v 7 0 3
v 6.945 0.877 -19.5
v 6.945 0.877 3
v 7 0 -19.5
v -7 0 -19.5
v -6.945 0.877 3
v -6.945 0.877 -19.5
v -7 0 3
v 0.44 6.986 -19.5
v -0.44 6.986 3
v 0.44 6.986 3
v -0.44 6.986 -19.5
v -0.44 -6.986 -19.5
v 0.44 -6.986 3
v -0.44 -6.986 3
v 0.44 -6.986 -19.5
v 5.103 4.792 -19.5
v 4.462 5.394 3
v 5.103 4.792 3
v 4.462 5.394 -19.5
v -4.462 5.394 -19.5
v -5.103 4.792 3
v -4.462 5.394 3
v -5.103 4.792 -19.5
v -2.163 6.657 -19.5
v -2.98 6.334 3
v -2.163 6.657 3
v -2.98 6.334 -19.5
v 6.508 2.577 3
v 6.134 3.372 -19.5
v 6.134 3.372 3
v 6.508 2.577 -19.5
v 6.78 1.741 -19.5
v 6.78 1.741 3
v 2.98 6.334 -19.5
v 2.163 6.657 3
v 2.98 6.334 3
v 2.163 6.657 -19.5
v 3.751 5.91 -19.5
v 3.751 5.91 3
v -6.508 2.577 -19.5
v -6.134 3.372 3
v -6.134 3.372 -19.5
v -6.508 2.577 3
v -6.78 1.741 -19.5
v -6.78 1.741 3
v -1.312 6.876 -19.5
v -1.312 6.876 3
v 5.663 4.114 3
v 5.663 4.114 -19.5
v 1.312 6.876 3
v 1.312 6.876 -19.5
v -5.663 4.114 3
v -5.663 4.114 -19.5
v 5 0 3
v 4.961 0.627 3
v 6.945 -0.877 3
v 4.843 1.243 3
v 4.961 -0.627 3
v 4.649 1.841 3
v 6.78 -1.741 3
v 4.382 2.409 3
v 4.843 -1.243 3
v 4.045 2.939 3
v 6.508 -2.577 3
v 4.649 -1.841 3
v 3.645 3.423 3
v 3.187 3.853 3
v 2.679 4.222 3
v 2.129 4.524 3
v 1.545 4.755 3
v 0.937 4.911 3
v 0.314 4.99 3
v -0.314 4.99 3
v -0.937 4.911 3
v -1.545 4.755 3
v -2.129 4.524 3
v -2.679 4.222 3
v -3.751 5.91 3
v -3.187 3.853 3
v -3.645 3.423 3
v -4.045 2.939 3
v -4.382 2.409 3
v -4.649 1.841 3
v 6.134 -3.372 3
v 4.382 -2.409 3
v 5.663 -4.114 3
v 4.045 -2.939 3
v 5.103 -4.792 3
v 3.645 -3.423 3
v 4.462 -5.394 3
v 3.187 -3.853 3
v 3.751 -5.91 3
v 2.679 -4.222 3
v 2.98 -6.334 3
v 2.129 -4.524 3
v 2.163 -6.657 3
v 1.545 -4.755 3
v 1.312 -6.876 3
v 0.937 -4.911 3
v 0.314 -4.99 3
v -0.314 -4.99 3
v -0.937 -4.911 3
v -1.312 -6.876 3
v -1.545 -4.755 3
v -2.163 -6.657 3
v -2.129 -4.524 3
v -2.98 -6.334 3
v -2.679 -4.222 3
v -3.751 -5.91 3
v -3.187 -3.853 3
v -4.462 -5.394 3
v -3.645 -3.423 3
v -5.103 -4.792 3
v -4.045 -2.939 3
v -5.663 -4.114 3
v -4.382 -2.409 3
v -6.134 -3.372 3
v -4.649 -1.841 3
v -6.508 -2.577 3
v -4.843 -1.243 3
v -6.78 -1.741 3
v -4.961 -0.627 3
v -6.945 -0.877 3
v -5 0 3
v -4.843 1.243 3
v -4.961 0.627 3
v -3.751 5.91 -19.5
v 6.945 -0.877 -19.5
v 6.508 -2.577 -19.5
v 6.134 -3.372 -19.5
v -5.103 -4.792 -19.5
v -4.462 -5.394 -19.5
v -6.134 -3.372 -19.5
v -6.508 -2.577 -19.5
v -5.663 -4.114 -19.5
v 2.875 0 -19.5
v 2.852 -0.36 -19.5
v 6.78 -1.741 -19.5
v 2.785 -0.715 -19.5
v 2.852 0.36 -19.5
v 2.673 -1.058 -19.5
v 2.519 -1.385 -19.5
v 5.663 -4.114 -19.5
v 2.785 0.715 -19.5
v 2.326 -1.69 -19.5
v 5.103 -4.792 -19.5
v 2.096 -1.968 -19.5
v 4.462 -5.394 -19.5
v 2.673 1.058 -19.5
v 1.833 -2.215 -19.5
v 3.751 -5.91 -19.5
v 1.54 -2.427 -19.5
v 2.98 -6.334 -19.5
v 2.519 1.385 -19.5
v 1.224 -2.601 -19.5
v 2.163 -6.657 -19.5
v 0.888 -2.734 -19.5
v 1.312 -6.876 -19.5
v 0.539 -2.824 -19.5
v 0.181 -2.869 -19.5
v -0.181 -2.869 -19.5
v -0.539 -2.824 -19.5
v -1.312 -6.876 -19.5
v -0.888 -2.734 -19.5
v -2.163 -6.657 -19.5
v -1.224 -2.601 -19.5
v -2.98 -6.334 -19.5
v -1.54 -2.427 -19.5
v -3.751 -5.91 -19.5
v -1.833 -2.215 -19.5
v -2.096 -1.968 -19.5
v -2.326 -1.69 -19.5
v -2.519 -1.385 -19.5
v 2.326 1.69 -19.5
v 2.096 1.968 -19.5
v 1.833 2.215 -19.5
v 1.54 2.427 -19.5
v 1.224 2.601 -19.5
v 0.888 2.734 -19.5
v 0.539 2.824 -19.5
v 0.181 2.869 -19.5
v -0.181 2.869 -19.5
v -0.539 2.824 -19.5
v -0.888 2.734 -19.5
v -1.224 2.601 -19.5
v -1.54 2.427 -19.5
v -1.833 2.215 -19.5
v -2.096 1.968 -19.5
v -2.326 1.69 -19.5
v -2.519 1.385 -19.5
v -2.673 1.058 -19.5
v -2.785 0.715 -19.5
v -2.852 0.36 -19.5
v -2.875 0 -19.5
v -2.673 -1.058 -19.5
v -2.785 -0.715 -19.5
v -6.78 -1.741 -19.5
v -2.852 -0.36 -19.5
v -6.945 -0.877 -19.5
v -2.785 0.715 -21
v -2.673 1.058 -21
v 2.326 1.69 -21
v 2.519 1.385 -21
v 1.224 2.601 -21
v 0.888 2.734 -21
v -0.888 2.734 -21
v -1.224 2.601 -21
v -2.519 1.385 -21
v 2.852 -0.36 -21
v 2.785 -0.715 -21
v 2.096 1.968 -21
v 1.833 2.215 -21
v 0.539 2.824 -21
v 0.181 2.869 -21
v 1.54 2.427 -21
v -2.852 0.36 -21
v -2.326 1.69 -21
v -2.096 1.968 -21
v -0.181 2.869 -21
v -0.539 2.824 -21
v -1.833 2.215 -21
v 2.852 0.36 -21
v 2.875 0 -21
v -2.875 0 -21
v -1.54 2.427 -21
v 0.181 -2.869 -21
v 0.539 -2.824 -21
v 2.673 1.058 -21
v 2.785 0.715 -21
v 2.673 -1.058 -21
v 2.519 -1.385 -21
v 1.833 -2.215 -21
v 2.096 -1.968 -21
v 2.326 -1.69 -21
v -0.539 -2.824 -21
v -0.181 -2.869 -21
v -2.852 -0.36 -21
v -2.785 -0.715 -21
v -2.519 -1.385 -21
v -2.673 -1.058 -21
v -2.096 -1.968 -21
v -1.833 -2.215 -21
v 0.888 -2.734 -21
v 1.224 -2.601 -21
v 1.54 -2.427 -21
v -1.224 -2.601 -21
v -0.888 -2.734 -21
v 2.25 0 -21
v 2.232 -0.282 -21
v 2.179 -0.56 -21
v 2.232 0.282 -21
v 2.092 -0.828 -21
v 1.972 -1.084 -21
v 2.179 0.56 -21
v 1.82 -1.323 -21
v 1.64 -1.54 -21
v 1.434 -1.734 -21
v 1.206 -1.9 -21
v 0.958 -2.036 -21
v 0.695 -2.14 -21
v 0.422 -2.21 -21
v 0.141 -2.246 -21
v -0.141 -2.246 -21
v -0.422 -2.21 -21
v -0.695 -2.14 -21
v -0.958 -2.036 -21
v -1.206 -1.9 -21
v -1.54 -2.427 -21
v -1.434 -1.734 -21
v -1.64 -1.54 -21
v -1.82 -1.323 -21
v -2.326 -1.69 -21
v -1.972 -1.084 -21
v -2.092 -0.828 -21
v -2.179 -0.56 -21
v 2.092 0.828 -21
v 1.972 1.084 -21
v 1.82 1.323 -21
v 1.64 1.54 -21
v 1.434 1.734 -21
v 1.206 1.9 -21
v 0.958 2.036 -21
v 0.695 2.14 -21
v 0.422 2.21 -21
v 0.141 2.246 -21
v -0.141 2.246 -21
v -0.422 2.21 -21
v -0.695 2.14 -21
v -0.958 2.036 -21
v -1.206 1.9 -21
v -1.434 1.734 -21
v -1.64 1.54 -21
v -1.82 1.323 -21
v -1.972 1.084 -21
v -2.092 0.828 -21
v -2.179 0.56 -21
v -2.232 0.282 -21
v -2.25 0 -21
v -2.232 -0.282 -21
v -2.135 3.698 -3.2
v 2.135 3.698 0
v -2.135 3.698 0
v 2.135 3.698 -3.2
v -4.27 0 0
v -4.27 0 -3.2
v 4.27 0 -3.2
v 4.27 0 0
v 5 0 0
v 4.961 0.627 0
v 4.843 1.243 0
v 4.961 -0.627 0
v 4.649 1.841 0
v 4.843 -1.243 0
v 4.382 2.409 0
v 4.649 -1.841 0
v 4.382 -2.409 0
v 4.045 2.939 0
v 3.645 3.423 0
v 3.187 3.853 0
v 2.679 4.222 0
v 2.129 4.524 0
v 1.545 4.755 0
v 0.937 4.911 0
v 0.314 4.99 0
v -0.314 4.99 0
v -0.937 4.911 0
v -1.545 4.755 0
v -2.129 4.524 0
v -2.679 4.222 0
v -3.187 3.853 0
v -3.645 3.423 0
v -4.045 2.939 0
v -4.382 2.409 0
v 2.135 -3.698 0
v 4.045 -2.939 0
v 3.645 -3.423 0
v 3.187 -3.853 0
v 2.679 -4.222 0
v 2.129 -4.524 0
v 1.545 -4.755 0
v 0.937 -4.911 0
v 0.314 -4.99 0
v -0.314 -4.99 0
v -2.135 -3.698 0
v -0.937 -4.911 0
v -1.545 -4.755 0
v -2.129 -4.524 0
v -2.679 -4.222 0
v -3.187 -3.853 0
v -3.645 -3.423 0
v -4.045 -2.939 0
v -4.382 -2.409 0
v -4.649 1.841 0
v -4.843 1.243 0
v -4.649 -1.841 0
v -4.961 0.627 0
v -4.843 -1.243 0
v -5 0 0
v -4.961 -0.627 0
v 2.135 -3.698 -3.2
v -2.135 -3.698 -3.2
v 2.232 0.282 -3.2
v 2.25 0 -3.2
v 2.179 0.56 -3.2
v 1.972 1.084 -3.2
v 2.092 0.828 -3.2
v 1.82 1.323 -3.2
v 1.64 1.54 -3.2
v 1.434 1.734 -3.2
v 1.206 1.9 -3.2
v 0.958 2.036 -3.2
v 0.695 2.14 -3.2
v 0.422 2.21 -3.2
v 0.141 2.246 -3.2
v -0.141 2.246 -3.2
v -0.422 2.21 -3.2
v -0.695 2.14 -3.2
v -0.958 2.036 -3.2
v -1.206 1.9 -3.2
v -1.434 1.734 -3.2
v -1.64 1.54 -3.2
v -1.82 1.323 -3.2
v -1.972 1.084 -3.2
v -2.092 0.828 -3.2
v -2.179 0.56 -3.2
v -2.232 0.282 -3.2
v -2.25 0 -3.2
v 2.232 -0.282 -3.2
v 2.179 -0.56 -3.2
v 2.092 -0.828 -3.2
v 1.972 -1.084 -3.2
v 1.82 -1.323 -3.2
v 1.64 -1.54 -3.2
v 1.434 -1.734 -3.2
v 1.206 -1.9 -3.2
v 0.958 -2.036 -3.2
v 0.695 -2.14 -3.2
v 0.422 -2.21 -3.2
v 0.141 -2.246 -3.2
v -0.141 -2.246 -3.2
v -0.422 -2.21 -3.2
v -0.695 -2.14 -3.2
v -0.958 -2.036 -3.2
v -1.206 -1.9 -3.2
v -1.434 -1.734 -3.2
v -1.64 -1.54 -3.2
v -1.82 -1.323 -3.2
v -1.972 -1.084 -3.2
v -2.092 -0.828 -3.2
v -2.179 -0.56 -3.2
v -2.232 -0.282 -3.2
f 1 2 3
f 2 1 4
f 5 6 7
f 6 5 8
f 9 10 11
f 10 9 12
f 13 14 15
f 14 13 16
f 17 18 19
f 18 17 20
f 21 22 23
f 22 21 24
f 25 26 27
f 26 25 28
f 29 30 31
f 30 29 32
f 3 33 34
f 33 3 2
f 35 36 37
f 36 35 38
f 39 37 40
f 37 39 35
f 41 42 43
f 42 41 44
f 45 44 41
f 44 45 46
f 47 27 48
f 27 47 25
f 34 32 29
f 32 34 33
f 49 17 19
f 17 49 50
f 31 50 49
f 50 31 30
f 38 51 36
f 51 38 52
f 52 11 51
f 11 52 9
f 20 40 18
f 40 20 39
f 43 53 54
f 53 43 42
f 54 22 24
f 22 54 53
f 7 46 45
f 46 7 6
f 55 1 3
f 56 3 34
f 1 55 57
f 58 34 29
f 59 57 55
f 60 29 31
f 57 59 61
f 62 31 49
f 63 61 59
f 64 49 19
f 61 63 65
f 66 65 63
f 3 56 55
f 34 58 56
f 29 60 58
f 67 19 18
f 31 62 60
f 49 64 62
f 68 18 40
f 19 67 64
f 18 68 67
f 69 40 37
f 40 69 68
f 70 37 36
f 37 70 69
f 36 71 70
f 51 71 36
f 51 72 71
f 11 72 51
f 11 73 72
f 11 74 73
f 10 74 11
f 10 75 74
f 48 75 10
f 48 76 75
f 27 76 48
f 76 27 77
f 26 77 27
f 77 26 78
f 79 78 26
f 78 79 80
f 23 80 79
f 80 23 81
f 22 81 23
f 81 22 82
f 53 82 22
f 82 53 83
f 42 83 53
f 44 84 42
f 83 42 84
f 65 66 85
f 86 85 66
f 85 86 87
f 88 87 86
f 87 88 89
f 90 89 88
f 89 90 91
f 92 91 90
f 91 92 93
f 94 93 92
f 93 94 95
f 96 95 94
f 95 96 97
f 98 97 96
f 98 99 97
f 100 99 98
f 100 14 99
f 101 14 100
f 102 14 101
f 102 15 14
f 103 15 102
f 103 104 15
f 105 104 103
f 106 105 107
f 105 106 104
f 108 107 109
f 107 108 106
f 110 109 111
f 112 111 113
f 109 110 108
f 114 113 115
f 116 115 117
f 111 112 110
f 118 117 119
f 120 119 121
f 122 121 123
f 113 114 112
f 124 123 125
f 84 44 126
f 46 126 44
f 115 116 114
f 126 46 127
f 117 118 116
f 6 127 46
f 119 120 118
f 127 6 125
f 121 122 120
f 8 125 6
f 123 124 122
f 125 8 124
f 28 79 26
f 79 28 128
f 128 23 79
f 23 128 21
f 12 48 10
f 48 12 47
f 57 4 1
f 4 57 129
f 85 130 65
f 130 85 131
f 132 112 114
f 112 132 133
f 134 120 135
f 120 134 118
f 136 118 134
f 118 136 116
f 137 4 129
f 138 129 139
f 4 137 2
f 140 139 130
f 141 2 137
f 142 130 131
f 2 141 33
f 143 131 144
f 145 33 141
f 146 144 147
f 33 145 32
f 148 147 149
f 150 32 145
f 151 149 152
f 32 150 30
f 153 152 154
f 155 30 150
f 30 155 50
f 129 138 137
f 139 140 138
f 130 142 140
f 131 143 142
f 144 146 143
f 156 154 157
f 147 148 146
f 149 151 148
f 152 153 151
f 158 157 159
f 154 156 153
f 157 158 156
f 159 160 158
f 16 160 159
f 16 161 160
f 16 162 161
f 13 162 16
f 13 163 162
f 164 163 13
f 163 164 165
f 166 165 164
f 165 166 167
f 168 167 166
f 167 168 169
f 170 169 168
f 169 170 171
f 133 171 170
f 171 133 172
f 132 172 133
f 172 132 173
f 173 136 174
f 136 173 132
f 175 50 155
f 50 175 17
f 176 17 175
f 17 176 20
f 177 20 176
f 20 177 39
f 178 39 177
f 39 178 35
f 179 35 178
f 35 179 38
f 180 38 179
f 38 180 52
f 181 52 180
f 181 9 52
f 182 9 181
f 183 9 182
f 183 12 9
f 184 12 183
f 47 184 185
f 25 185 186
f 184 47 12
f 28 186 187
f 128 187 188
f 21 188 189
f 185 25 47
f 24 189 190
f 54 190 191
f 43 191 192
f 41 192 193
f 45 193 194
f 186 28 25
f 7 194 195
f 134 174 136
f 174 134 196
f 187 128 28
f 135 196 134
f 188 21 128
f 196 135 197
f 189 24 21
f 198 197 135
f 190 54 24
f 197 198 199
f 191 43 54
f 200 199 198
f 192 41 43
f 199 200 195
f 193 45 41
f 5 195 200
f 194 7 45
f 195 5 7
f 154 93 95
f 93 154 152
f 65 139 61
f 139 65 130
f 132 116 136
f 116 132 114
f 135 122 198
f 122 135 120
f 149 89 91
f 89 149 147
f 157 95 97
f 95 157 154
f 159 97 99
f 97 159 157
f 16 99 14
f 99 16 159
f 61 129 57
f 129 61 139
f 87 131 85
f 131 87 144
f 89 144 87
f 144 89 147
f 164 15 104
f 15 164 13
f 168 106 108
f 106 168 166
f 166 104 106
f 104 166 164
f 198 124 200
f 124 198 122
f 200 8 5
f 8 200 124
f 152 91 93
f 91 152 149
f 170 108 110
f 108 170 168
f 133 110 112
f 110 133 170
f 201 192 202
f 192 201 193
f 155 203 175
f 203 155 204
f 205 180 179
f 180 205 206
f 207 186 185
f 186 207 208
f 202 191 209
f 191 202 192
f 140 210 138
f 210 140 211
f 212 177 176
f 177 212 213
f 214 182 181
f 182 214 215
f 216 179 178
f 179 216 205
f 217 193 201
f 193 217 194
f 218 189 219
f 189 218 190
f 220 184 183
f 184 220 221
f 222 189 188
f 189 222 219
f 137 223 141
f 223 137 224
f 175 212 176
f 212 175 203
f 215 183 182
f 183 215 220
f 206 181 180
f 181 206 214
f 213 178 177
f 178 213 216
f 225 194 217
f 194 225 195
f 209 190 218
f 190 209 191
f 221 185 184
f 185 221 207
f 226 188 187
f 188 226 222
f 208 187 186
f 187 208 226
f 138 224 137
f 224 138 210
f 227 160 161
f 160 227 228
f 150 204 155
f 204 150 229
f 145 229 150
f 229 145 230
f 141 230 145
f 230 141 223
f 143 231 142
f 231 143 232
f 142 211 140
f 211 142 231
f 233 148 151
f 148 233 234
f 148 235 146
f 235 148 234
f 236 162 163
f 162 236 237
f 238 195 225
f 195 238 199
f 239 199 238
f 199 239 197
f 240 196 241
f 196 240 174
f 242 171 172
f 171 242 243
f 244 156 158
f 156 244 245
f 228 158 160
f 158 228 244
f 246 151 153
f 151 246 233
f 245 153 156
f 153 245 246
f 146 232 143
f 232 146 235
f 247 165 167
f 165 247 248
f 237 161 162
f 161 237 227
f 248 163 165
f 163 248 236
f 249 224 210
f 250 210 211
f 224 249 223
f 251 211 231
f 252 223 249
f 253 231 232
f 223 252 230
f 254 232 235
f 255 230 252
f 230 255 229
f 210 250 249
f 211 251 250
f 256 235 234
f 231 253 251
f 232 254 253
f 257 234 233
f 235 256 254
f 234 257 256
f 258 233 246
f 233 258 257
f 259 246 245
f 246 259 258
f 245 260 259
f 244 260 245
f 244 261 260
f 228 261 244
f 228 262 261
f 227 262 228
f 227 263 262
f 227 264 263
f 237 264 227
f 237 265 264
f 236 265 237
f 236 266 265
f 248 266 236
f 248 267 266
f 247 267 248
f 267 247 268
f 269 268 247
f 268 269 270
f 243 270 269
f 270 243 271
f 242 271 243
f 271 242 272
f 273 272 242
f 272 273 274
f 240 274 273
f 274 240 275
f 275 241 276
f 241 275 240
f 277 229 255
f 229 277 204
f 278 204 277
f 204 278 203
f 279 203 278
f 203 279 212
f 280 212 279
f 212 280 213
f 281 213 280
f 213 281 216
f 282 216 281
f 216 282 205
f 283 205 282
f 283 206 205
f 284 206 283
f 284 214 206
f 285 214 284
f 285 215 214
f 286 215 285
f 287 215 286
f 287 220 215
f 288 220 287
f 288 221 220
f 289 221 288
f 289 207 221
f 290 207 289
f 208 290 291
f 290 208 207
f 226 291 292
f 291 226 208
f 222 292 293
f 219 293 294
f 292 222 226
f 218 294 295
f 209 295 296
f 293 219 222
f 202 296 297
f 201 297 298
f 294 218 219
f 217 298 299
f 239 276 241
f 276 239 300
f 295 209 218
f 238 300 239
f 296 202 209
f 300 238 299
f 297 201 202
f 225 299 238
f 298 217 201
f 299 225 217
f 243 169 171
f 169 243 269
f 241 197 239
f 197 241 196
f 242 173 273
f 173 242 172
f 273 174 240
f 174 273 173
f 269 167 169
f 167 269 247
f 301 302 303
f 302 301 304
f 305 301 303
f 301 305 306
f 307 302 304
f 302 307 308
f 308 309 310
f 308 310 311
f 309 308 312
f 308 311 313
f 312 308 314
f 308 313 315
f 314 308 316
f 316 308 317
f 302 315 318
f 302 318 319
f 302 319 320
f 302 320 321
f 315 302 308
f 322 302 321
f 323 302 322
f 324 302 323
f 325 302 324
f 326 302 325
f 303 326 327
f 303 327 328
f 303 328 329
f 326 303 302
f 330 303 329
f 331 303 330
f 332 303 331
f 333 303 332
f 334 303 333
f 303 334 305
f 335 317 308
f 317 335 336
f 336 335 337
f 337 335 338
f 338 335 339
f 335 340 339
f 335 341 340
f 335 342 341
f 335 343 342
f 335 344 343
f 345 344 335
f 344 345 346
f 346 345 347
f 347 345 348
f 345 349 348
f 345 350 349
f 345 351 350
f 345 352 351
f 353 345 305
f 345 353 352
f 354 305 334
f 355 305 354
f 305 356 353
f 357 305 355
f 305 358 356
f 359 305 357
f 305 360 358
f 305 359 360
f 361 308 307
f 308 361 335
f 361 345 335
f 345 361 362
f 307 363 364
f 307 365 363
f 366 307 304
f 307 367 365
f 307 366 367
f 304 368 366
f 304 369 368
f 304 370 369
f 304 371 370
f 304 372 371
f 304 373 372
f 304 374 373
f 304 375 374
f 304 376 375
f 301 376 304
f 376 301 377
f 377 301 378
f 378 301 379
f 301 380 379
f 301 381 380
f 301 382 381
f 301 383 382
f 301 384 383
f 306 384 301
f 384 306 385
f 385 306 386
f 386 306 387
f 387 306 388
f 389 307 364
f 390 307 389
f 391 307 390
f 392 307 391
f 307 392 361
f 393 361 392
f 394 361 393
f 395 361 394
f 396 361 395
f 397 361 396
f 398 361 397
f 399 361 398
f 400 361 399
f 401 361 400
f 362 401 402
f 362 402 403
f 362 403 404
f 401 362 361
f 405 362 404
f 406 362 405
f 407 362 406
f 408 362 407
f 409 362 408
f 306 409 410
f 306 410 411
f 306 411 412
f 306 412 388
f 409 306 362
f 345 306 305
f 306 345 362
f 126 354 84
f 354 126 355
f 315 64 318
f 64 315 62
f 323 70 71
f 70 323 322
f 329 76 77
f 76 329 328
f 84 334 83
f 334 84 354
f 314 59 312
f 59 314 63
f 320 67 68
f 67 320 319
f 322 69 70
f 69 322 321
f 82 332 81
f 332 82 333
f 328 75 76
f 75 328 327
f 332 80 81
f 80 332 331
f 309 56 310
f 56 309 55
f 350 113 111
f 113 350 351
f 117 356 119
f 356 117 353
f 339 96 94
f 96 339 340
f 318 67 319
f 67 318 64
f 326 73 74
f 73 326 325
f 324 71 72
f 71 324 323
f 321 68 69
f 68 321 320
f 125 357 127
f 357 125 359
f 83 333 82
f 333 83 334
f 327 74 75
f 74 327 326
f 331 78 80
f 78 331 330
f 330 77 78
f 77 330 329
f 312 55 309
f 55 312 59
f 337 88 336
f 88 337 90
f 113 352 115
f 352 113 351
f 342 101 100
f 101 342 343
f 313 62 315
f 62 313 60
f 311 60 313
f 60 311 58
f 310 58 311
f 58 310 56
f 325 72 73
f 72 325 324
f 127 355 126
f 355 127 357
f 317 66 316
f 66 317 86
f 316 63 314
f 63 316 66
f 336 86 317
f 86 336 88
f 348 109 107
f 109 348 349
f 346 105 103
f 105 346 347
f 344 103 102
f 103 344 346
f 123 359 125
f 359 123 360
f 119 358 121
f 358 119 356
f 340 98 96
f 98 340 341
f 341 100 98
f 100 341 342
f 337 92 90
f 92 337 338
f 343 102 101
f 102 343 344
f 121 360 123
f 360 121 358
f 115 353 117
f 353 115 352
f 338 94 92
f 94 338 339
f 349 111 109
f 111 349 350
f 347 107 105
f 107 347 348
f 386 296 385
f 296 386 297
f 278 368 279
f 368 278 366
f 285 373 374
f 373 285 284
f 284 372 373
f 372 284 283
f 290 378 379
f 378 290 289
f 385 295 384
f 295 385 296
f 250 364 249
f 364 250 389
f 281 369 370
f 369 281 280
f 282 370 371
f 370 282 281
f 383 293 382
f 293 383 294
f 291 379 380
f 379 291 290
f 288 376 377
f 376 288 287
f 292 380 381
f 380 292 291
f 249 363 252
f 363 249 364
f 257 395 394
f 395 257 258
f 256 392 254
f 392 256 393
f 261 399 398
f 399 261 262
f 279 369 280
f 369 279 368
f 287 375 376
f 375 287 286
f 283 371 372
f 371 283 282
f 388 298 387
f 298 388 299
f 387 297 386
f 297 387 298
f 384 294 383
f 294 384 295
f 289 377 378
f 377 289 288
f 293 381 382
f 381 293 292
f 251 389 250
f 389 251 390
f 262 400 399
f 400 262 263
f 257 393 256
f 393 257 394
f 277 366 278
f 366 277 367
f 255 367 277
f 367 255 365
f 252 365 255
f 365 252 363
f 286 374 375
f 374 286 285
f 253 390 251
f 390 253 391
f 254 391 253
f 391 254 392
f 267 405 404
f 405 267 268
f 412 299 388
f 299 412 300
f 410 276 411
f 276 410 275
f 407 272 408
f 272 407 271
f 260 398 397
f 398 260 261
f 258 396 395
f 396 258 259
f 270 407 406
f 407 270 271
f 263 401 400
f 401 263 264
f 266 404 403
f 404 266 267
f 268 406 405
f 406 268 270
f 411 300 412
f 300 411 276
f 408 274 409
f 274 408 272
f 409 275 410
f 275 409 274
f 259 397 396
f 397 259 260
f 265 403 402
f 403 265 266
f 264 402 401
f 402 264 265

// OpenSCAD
$fn = 50;


difference() {
	union() {
		translate(v = [0, 0, -19.5000000000]) {
			cylinder(h = 22.5000000000, r = 7.0000000000);
		}
		#translate(v = [0, 0, -21.0000000000]) {
			cylinder(h = 21, r = 2.8750000000);
		}
	}
	union() {
		translate(v = [0, 0, 0]) {
			rotate(a = [0, 0, 0]) {
				difference() {
					union() {
						translate(v = [0, 0, -3.2000000000]) {
							linear_extrude(height = 3.2000000000) {
								polygon(points = [[4.2698000000, 0.0000000000], [2.1349000000, 3.6977552691], [-2.1349000000, 3.6977552691], [-4.2698000000, 0.0000000000], [-2.1349000000, -3.6977552691], [2.1349000000, -3.6977552691]]);
							}
						}
					}
					union();
				}
			}
		}
		#cylinder(h = 3, r = 5.0000000000);
		#translate(v = [0, 0, -100.0000000000]) {
			cylinder(h = 200, r = 2.2500000000);
		}
	}
}
